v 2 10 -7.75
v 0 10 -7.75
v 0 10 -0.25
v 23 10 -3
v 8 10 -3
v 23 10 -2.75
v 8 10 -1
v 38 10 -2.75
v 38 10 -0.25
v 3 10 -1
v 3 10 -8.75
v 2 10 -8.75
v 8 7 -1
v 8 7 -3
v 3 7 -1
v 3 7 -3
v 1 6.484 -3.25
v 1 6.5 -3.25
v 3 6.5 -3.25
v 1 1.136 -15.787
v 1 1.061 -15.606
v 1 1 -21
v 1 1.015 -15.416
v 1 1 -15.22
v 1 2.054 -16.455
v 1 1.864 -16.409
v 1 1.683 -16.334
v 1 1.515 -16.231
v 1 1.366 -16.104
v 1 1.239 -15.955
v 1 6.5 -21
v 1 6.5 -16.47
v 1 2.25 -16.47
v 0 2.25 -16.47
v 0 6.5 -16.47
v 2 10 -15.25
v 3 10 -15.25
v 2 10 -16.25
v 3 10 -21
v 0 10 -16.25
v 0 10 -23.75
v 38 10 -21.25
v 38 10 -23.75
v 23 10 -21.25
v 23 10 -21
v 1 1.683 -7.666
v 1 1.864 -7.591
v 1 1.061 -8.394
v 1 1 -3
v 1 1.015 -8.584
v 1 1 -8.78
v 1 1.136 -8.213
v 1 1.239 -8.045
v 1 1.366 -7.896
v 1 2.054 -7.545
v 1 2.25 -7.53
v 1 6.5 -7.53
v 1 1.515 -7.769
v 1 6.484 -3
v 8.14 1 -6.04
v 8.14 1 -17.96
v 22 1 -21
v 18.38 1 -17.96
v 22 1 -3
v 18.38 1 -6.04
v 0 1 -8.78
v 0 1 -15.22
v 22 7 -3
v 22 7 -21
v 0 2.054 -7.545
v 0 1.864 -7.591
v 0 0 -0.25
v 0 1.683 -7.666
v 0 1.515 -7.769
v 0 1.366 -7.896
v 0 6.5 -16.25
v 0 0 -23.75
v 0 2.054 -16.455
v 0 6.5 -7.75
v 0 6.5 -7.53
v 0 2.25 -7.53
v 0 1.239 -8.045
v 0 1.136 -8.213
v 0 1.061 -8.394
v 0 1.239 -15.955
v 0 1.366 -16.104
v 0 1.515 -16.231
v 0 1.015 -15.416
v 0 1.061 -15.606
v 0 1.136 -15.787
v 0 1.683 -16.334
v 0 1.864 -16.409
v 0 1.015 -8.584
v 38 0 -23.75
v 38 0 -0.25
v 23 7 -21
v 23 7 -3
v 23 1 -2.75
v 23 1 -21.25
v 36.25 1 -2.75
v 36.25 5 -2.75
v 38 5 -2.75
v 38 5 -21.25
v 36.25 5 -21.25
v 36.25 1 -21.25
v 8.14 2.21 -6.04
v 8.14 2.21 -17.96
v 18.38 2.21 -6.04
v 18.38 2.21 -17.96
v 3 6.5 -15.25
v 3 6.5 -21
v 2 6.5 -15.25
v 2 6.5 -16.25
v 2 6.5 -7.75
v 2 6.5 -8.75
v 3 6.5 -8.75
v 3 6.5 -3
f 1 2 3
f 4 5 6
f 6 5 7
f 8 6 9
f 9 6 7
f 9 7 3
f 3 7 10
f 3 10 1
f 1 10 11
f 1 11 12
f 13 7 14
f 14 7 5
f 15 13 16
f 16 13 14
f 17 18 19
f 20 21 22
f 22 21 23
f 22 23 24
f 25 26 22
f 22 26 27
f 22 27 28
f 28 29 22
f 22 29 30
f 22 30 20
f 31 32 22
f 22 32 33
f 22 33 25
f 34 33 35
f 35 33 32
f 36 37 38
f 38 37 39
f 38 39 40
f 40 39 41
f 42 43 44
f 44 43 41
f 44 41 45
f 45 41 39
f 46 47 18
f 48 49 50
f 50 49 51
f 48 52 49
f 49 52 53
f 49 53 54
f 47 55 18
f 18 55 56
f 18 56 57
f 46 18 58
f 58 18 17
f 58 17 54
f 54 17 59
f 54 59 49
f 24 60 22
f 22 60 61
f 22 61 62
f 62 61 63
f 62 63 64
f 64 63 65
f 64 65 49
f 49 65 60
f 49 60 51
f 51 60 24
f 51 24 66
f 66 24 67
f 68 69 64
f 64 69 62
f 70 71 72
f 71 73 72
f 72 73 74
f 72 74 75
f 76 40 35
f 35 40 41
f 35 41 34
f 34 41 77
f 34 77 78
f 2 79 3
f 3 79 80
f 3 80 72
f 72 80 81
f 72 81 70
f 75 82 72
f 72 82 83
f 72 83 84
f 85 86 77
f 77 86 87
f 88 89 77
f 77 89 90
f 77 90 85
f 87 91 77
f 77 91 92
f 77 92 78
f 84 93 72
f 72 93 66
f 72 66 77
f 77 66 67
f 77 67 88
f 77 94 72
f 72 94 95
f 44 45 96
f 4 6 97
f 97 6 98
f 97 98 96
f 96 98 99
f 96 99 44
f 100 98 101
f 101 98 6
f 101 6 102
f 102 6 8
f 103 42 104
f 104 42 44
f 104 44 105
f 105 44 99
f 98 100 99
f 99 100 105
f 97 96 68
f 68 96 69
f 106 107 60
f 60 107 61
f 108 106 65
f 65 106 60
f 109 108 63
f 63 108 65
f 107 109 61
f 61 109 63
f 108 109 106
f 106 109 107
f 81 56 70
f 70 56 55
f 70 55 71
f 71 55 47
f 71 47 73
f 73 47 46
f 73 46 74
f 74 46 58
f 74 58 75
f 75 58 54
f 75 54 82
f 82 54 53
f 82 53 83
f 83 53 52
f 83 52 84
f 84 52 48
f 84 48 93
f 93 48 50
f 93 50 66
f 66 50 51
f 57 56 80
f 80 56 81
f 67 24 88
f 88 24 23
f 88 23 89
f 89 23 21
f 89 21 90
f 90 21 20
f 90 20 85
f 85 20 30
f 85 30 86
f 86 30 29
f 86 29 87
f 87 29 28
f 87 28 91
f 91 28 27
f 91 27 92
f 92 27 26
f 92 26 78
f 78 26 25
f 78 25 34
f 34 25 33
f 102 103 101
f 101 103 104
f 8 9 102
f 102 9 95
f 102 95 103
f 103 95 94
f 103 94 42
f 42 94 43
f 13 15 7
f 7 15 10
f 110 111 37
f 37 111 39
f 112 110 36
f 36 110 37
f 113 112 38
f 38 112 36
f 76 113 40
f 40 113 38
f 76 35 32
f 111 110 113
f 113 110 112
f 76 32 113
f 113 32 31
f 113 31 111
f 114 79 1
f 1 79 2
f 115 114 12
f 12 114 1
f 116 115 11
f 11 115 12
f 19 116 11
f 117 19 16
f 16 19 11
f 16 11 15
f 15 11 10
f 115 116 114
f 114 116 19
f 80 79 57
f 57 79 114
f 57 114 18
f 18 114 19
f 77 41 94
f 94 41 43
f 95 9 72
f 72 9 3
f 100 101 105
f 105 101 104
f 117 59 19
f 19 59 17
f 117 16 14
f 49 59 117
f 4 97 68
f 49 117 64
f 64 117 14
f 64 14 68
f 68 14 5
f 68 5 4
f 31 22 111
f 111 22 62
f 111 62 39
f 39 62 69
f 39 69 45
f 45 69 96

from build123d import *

# Parameters (mm, degrees)
SKETCH1_W           = 40
SKETCH1_H           = 24
BOSS_EXTRUDE1_DEPTH = 1
SKETCH2_W           = 40
SKETCH2_H           = 24
SKETCH2_W_2         = 21
SKETCH2_H_2         = 17.5
SKETCH2_W_3         = 13
SKETCH2_H_3         = 18.5
BOSS_EXTRUDE3_DEPTH = 9
SKETCH3_W           = 1
SKETCH3_H           = 17.5
CUT_EXTRUDE2_DEPTH  = 3
SKETCH4_W           = 10.24
SKETCH4_H           = 11.92
BOSS_EXTRUDE4_DEPTH = 1.21
CUT_EXTRUDE3_DEPTH  = 2
SKETCH8_W           = 4
SKETCH8_H           = 18.5
CUT_EXTRUDE4_DEPTH  = 5
SKETCH11_W          = 24
SKETCH11_H          = 10
CUT_EXTRUDE5_DEPTH  = 2
SKETCH12_W          = 4
SKETCH12_H          = 3
CUT_EXTRUDE6_DEPTH  = 3
BOSS_EXTRUDE5_DEPTH = 3.5
SKETCH14_W          = 1
SKETCH14_H          = 2.25
CUT_EXTRUDE7_DEPTH  = 3
SKETCH15_W          = 38
SKETCH15_H          = 10
CUT_EXTRUDE8_DEPTH  = 0.25
SKETCH16_W          = 38
SKETCH16_H          = 10
CUT_EXTRUDE9_DEPTH  = 0.25
SKETCH17_W          = 18.5
SKETCH17_H          = 4
CUT_EXTRUDE10_DEPTH = 0.25
CUT_EXTRUDE11_DEPTH = 0.25
CUT_EXTRUDE12_DEPTH = 0.25


with BuildPart() as part:
    # Sketch1 → Boss-Extrude1 (new body)
    with BuildSketch(Plane(origin=(0, 0, 0), x_dir=(1, 0, 0), z_dir=(0, 1, 0))):
        with Locations((20, 12)):
            Rectangle(SKETCH1_W, SKETCH1_H)
    extrude(amount=BOSS_EXTRUDE1_DEPTH)

    # Sketch2 → Boss-Extrude3 (add)
    with BuildSketch(Plane(origin=(0, 1, 0), x_dir=(1, 0, 0), z_dir=(0, 1, 0))):
        with Locations((20, 12)):
            Rectangle(SKETCH2_W, SKETCH2_H)
        with Locations((11.5, 12)):
            Rectangle(SKETCH2_W_2, SKETCH2_H_2, mode=Mode.SUBTRACT)
        with Locations((29.5, 12)):
            Rectangle(SKETCH2_W_3, SKETCH2_H_3, mode=Mode.SUBTRACT)
    extrude(amount=BOSS_EXTRUDE3_DEPTH)

    # Sketch3 → Cut-Extrude2 (cut)
    with BuildSketch(Plane(origin=(0, 10, 0), x_dir=(1, 0, 0), z_dir=(0, 1, 0))):
        with Locations((22.5, 12)):
            Rectangle(SKETCH3_W, SKETCH3_H)
    extrude(amount=-CUT_EXTRUDE2_DEPTH, mode=Mode.SUBTRACT)

    # Sketch4 → Boss-Extrude4 (add)
    with BuildSketch(Plane(origin=(0, 1, 0), x_dir=(1, 0, 0), z_dir=(0, 1, 0))):
        with Locations((13.26, 12)):
            Rectangle(SKETCH4_W, SKETCH4_H)
    extrude(amount=BOSS_EXTRUDE4_DEPTH)

    # Sketch5 → Cut-Extrude3 (cut)
    with BuildSketch(Plane(origin=(1, 0, 0), x_dir=(0, 0, -1), z_dir=(1, 0, 0))):
        with BuildLine():
            Line((7.53, 2.25), (7.53, 2.96))
            Line((7.53, 2.96), (7.53, 10))
            Line((7.53, 10), (16.47, 10))
            Line((16.47, 10), (16.47, 2.96))
            Line((16.47, 2.96), (16.47, 2.25))
            ThreePointArc((16.47, 2.25), (16.103883476, 1.366116524), (15.22, 1))
            Line((15.22, 1), (8.78, 1))
            ThreePointArc((8.78, 1), (7.896116524, 1.366116524), (7.53, 2.25))
        make_face()
    extrude(amount=-CUT_EXTRUDE3_DEPTH, mode=Mode.SUBTRACT)

    # Sketch8 → Cut-Extrude4 (cut)
    with BuildSketch(Plane(origin=(0, 10, 0), x_dir=(1, 0, 0), z_dir=(0, 1, 0))):
        with Locations((38, 12)):
            Rectangle(SKETCH8_W, SKETCH8_H)
    extrude(amount=-CUT_EXTRUDE4_DEPTH, mode=Mode.SUBTRACT)

    # Sketch11 → Cut-Extrude5 (cut)
    with BuildSketch(Plane(origin=(40, 0, 0), x_dir=(0, 0, -1), z_dir=(1, 0, 0))):
        with Locations((12, 5)):
            Rectangle(SKETCH11_W, SKETCH11_H)
    extrude(amount=-CUT_EXTRUDE5_DEPTH, mode=Mode.SUBTRACT)

    # Sketch12 → Cut-Extrude6 (cut)
    with BuildSketch(Plane(origin=(0, 10, 0), x_dir=(1, 0, 0), z_dir=(0, 1, 0))):
        with Locations((6, 2.5)):
            Rectangle(SKETCH12_W, SKETCH12_H)
    extrude(amount=-CUT_EXTRUDE6_DEPTH, mode=Mode.SUBTRACT)

    # Sketch13 → Boss-Extrude5 (add)
    with BuildSketch(Plane(origin=(0, 10, 0), x_dir=(1, 0, 0), z_dir=(0, 1, 0))):
        Polygon((1, 16.47), (1, 20.75), (3, 20.75), (3, 15.25), (2, 15.25), (2, 16.25), (0, 16.25), (0, 16.47), align=None)
        Polygon((1, 3.25), (3, 3.25), (3, 8.75), (2, 8.75), (2, 7.75), (0, 7.75), (0, 7.53), (1, 7.53), align=None)
    extrude(amount=-BOSS_EXTRUDE5_DEPTH)

    # Sketch14 → Cut-Extrude7 (cut)
    with BuildSketch(Plane(origin=(0, 10, 0), x_dir=(1, 0, 0), z_dir=(0, 1, 0))):
        with Locations((3.5, 2.125)):
            Rectangle(SKETCH14_W, SKETCH14_H)
    extrude(amount=-CUT_EXTRUDE7_DEPTH, mode=Mode.SUBTRACT)

    # Sketch15 → Cut-Extrude8 (cut)
    with BuildSketch(Plane(origin=(0, 0, -24), x_dir=(-1, 0, 0), z_dir=(0, 0, -1))):
        with Locations((-19, 5)):
            Rectangle(SKETCH15_W, SKETCH15_H)
    extrude(amount=-CUT_EXTRUDE8_DEPTH, mode=Mode.SUBTRACT)

    # Sketch16 → Cut-Extrude9 (cut)
    with BuildSketch(Plane.XY):
        with Locations((19, 5)):
            Rectangle(SKETCH16_W, SKETCH16_H)
    extrude(amount=-CUT_EXTRUDE9_DEPTH, mode=Mode.SUBTRACT)

    # Sketch17 → Cut-Extrude10 (cut)
    with BuildSketch(Plane.ZY.offset(-36)):
        with Locations((-12, 3)):
            Rectangle(SKETCH17_W, SKETCH17_H)
    extrude(amount=-CUT_EXTRUDE10_DEPTH, mode=Mode.SUBTRACT)

    # Sketch18 → Cut-Extrude11 (cut)
    with BuildSketch(Plane(origin=(0, 0, -3.25), x_dir=(-1, 0, 0), z_dir=(0, 0, -1))):
        Polygon((-1, 1), (-1, 6.483981395), (-3, 6.5), (-3, 7), (-8, 7), (-8, 10), (-23, 10), (-23, 7), (-22, 7), (-22, 1), align=None)
    extrude(amount=-CUT_EXTRUDE11_DEPTH, mode=Mode.SUBTRACT)

    # Sketch19 → Cut-Extrude12 (cut)
    with BuildSketch(Plane.XY.offset(-20.75)):
        Polygon((1, 1), (1, 6.5), (3, 6.5), (3, 10), (23, 10), (23, 7), (22, 7), (22, 1), align=None)
    extrude(amount=-CUT_EXTRUDE12_DEPTH, mode=Mode.SUBTRACT)


solid = part.part
